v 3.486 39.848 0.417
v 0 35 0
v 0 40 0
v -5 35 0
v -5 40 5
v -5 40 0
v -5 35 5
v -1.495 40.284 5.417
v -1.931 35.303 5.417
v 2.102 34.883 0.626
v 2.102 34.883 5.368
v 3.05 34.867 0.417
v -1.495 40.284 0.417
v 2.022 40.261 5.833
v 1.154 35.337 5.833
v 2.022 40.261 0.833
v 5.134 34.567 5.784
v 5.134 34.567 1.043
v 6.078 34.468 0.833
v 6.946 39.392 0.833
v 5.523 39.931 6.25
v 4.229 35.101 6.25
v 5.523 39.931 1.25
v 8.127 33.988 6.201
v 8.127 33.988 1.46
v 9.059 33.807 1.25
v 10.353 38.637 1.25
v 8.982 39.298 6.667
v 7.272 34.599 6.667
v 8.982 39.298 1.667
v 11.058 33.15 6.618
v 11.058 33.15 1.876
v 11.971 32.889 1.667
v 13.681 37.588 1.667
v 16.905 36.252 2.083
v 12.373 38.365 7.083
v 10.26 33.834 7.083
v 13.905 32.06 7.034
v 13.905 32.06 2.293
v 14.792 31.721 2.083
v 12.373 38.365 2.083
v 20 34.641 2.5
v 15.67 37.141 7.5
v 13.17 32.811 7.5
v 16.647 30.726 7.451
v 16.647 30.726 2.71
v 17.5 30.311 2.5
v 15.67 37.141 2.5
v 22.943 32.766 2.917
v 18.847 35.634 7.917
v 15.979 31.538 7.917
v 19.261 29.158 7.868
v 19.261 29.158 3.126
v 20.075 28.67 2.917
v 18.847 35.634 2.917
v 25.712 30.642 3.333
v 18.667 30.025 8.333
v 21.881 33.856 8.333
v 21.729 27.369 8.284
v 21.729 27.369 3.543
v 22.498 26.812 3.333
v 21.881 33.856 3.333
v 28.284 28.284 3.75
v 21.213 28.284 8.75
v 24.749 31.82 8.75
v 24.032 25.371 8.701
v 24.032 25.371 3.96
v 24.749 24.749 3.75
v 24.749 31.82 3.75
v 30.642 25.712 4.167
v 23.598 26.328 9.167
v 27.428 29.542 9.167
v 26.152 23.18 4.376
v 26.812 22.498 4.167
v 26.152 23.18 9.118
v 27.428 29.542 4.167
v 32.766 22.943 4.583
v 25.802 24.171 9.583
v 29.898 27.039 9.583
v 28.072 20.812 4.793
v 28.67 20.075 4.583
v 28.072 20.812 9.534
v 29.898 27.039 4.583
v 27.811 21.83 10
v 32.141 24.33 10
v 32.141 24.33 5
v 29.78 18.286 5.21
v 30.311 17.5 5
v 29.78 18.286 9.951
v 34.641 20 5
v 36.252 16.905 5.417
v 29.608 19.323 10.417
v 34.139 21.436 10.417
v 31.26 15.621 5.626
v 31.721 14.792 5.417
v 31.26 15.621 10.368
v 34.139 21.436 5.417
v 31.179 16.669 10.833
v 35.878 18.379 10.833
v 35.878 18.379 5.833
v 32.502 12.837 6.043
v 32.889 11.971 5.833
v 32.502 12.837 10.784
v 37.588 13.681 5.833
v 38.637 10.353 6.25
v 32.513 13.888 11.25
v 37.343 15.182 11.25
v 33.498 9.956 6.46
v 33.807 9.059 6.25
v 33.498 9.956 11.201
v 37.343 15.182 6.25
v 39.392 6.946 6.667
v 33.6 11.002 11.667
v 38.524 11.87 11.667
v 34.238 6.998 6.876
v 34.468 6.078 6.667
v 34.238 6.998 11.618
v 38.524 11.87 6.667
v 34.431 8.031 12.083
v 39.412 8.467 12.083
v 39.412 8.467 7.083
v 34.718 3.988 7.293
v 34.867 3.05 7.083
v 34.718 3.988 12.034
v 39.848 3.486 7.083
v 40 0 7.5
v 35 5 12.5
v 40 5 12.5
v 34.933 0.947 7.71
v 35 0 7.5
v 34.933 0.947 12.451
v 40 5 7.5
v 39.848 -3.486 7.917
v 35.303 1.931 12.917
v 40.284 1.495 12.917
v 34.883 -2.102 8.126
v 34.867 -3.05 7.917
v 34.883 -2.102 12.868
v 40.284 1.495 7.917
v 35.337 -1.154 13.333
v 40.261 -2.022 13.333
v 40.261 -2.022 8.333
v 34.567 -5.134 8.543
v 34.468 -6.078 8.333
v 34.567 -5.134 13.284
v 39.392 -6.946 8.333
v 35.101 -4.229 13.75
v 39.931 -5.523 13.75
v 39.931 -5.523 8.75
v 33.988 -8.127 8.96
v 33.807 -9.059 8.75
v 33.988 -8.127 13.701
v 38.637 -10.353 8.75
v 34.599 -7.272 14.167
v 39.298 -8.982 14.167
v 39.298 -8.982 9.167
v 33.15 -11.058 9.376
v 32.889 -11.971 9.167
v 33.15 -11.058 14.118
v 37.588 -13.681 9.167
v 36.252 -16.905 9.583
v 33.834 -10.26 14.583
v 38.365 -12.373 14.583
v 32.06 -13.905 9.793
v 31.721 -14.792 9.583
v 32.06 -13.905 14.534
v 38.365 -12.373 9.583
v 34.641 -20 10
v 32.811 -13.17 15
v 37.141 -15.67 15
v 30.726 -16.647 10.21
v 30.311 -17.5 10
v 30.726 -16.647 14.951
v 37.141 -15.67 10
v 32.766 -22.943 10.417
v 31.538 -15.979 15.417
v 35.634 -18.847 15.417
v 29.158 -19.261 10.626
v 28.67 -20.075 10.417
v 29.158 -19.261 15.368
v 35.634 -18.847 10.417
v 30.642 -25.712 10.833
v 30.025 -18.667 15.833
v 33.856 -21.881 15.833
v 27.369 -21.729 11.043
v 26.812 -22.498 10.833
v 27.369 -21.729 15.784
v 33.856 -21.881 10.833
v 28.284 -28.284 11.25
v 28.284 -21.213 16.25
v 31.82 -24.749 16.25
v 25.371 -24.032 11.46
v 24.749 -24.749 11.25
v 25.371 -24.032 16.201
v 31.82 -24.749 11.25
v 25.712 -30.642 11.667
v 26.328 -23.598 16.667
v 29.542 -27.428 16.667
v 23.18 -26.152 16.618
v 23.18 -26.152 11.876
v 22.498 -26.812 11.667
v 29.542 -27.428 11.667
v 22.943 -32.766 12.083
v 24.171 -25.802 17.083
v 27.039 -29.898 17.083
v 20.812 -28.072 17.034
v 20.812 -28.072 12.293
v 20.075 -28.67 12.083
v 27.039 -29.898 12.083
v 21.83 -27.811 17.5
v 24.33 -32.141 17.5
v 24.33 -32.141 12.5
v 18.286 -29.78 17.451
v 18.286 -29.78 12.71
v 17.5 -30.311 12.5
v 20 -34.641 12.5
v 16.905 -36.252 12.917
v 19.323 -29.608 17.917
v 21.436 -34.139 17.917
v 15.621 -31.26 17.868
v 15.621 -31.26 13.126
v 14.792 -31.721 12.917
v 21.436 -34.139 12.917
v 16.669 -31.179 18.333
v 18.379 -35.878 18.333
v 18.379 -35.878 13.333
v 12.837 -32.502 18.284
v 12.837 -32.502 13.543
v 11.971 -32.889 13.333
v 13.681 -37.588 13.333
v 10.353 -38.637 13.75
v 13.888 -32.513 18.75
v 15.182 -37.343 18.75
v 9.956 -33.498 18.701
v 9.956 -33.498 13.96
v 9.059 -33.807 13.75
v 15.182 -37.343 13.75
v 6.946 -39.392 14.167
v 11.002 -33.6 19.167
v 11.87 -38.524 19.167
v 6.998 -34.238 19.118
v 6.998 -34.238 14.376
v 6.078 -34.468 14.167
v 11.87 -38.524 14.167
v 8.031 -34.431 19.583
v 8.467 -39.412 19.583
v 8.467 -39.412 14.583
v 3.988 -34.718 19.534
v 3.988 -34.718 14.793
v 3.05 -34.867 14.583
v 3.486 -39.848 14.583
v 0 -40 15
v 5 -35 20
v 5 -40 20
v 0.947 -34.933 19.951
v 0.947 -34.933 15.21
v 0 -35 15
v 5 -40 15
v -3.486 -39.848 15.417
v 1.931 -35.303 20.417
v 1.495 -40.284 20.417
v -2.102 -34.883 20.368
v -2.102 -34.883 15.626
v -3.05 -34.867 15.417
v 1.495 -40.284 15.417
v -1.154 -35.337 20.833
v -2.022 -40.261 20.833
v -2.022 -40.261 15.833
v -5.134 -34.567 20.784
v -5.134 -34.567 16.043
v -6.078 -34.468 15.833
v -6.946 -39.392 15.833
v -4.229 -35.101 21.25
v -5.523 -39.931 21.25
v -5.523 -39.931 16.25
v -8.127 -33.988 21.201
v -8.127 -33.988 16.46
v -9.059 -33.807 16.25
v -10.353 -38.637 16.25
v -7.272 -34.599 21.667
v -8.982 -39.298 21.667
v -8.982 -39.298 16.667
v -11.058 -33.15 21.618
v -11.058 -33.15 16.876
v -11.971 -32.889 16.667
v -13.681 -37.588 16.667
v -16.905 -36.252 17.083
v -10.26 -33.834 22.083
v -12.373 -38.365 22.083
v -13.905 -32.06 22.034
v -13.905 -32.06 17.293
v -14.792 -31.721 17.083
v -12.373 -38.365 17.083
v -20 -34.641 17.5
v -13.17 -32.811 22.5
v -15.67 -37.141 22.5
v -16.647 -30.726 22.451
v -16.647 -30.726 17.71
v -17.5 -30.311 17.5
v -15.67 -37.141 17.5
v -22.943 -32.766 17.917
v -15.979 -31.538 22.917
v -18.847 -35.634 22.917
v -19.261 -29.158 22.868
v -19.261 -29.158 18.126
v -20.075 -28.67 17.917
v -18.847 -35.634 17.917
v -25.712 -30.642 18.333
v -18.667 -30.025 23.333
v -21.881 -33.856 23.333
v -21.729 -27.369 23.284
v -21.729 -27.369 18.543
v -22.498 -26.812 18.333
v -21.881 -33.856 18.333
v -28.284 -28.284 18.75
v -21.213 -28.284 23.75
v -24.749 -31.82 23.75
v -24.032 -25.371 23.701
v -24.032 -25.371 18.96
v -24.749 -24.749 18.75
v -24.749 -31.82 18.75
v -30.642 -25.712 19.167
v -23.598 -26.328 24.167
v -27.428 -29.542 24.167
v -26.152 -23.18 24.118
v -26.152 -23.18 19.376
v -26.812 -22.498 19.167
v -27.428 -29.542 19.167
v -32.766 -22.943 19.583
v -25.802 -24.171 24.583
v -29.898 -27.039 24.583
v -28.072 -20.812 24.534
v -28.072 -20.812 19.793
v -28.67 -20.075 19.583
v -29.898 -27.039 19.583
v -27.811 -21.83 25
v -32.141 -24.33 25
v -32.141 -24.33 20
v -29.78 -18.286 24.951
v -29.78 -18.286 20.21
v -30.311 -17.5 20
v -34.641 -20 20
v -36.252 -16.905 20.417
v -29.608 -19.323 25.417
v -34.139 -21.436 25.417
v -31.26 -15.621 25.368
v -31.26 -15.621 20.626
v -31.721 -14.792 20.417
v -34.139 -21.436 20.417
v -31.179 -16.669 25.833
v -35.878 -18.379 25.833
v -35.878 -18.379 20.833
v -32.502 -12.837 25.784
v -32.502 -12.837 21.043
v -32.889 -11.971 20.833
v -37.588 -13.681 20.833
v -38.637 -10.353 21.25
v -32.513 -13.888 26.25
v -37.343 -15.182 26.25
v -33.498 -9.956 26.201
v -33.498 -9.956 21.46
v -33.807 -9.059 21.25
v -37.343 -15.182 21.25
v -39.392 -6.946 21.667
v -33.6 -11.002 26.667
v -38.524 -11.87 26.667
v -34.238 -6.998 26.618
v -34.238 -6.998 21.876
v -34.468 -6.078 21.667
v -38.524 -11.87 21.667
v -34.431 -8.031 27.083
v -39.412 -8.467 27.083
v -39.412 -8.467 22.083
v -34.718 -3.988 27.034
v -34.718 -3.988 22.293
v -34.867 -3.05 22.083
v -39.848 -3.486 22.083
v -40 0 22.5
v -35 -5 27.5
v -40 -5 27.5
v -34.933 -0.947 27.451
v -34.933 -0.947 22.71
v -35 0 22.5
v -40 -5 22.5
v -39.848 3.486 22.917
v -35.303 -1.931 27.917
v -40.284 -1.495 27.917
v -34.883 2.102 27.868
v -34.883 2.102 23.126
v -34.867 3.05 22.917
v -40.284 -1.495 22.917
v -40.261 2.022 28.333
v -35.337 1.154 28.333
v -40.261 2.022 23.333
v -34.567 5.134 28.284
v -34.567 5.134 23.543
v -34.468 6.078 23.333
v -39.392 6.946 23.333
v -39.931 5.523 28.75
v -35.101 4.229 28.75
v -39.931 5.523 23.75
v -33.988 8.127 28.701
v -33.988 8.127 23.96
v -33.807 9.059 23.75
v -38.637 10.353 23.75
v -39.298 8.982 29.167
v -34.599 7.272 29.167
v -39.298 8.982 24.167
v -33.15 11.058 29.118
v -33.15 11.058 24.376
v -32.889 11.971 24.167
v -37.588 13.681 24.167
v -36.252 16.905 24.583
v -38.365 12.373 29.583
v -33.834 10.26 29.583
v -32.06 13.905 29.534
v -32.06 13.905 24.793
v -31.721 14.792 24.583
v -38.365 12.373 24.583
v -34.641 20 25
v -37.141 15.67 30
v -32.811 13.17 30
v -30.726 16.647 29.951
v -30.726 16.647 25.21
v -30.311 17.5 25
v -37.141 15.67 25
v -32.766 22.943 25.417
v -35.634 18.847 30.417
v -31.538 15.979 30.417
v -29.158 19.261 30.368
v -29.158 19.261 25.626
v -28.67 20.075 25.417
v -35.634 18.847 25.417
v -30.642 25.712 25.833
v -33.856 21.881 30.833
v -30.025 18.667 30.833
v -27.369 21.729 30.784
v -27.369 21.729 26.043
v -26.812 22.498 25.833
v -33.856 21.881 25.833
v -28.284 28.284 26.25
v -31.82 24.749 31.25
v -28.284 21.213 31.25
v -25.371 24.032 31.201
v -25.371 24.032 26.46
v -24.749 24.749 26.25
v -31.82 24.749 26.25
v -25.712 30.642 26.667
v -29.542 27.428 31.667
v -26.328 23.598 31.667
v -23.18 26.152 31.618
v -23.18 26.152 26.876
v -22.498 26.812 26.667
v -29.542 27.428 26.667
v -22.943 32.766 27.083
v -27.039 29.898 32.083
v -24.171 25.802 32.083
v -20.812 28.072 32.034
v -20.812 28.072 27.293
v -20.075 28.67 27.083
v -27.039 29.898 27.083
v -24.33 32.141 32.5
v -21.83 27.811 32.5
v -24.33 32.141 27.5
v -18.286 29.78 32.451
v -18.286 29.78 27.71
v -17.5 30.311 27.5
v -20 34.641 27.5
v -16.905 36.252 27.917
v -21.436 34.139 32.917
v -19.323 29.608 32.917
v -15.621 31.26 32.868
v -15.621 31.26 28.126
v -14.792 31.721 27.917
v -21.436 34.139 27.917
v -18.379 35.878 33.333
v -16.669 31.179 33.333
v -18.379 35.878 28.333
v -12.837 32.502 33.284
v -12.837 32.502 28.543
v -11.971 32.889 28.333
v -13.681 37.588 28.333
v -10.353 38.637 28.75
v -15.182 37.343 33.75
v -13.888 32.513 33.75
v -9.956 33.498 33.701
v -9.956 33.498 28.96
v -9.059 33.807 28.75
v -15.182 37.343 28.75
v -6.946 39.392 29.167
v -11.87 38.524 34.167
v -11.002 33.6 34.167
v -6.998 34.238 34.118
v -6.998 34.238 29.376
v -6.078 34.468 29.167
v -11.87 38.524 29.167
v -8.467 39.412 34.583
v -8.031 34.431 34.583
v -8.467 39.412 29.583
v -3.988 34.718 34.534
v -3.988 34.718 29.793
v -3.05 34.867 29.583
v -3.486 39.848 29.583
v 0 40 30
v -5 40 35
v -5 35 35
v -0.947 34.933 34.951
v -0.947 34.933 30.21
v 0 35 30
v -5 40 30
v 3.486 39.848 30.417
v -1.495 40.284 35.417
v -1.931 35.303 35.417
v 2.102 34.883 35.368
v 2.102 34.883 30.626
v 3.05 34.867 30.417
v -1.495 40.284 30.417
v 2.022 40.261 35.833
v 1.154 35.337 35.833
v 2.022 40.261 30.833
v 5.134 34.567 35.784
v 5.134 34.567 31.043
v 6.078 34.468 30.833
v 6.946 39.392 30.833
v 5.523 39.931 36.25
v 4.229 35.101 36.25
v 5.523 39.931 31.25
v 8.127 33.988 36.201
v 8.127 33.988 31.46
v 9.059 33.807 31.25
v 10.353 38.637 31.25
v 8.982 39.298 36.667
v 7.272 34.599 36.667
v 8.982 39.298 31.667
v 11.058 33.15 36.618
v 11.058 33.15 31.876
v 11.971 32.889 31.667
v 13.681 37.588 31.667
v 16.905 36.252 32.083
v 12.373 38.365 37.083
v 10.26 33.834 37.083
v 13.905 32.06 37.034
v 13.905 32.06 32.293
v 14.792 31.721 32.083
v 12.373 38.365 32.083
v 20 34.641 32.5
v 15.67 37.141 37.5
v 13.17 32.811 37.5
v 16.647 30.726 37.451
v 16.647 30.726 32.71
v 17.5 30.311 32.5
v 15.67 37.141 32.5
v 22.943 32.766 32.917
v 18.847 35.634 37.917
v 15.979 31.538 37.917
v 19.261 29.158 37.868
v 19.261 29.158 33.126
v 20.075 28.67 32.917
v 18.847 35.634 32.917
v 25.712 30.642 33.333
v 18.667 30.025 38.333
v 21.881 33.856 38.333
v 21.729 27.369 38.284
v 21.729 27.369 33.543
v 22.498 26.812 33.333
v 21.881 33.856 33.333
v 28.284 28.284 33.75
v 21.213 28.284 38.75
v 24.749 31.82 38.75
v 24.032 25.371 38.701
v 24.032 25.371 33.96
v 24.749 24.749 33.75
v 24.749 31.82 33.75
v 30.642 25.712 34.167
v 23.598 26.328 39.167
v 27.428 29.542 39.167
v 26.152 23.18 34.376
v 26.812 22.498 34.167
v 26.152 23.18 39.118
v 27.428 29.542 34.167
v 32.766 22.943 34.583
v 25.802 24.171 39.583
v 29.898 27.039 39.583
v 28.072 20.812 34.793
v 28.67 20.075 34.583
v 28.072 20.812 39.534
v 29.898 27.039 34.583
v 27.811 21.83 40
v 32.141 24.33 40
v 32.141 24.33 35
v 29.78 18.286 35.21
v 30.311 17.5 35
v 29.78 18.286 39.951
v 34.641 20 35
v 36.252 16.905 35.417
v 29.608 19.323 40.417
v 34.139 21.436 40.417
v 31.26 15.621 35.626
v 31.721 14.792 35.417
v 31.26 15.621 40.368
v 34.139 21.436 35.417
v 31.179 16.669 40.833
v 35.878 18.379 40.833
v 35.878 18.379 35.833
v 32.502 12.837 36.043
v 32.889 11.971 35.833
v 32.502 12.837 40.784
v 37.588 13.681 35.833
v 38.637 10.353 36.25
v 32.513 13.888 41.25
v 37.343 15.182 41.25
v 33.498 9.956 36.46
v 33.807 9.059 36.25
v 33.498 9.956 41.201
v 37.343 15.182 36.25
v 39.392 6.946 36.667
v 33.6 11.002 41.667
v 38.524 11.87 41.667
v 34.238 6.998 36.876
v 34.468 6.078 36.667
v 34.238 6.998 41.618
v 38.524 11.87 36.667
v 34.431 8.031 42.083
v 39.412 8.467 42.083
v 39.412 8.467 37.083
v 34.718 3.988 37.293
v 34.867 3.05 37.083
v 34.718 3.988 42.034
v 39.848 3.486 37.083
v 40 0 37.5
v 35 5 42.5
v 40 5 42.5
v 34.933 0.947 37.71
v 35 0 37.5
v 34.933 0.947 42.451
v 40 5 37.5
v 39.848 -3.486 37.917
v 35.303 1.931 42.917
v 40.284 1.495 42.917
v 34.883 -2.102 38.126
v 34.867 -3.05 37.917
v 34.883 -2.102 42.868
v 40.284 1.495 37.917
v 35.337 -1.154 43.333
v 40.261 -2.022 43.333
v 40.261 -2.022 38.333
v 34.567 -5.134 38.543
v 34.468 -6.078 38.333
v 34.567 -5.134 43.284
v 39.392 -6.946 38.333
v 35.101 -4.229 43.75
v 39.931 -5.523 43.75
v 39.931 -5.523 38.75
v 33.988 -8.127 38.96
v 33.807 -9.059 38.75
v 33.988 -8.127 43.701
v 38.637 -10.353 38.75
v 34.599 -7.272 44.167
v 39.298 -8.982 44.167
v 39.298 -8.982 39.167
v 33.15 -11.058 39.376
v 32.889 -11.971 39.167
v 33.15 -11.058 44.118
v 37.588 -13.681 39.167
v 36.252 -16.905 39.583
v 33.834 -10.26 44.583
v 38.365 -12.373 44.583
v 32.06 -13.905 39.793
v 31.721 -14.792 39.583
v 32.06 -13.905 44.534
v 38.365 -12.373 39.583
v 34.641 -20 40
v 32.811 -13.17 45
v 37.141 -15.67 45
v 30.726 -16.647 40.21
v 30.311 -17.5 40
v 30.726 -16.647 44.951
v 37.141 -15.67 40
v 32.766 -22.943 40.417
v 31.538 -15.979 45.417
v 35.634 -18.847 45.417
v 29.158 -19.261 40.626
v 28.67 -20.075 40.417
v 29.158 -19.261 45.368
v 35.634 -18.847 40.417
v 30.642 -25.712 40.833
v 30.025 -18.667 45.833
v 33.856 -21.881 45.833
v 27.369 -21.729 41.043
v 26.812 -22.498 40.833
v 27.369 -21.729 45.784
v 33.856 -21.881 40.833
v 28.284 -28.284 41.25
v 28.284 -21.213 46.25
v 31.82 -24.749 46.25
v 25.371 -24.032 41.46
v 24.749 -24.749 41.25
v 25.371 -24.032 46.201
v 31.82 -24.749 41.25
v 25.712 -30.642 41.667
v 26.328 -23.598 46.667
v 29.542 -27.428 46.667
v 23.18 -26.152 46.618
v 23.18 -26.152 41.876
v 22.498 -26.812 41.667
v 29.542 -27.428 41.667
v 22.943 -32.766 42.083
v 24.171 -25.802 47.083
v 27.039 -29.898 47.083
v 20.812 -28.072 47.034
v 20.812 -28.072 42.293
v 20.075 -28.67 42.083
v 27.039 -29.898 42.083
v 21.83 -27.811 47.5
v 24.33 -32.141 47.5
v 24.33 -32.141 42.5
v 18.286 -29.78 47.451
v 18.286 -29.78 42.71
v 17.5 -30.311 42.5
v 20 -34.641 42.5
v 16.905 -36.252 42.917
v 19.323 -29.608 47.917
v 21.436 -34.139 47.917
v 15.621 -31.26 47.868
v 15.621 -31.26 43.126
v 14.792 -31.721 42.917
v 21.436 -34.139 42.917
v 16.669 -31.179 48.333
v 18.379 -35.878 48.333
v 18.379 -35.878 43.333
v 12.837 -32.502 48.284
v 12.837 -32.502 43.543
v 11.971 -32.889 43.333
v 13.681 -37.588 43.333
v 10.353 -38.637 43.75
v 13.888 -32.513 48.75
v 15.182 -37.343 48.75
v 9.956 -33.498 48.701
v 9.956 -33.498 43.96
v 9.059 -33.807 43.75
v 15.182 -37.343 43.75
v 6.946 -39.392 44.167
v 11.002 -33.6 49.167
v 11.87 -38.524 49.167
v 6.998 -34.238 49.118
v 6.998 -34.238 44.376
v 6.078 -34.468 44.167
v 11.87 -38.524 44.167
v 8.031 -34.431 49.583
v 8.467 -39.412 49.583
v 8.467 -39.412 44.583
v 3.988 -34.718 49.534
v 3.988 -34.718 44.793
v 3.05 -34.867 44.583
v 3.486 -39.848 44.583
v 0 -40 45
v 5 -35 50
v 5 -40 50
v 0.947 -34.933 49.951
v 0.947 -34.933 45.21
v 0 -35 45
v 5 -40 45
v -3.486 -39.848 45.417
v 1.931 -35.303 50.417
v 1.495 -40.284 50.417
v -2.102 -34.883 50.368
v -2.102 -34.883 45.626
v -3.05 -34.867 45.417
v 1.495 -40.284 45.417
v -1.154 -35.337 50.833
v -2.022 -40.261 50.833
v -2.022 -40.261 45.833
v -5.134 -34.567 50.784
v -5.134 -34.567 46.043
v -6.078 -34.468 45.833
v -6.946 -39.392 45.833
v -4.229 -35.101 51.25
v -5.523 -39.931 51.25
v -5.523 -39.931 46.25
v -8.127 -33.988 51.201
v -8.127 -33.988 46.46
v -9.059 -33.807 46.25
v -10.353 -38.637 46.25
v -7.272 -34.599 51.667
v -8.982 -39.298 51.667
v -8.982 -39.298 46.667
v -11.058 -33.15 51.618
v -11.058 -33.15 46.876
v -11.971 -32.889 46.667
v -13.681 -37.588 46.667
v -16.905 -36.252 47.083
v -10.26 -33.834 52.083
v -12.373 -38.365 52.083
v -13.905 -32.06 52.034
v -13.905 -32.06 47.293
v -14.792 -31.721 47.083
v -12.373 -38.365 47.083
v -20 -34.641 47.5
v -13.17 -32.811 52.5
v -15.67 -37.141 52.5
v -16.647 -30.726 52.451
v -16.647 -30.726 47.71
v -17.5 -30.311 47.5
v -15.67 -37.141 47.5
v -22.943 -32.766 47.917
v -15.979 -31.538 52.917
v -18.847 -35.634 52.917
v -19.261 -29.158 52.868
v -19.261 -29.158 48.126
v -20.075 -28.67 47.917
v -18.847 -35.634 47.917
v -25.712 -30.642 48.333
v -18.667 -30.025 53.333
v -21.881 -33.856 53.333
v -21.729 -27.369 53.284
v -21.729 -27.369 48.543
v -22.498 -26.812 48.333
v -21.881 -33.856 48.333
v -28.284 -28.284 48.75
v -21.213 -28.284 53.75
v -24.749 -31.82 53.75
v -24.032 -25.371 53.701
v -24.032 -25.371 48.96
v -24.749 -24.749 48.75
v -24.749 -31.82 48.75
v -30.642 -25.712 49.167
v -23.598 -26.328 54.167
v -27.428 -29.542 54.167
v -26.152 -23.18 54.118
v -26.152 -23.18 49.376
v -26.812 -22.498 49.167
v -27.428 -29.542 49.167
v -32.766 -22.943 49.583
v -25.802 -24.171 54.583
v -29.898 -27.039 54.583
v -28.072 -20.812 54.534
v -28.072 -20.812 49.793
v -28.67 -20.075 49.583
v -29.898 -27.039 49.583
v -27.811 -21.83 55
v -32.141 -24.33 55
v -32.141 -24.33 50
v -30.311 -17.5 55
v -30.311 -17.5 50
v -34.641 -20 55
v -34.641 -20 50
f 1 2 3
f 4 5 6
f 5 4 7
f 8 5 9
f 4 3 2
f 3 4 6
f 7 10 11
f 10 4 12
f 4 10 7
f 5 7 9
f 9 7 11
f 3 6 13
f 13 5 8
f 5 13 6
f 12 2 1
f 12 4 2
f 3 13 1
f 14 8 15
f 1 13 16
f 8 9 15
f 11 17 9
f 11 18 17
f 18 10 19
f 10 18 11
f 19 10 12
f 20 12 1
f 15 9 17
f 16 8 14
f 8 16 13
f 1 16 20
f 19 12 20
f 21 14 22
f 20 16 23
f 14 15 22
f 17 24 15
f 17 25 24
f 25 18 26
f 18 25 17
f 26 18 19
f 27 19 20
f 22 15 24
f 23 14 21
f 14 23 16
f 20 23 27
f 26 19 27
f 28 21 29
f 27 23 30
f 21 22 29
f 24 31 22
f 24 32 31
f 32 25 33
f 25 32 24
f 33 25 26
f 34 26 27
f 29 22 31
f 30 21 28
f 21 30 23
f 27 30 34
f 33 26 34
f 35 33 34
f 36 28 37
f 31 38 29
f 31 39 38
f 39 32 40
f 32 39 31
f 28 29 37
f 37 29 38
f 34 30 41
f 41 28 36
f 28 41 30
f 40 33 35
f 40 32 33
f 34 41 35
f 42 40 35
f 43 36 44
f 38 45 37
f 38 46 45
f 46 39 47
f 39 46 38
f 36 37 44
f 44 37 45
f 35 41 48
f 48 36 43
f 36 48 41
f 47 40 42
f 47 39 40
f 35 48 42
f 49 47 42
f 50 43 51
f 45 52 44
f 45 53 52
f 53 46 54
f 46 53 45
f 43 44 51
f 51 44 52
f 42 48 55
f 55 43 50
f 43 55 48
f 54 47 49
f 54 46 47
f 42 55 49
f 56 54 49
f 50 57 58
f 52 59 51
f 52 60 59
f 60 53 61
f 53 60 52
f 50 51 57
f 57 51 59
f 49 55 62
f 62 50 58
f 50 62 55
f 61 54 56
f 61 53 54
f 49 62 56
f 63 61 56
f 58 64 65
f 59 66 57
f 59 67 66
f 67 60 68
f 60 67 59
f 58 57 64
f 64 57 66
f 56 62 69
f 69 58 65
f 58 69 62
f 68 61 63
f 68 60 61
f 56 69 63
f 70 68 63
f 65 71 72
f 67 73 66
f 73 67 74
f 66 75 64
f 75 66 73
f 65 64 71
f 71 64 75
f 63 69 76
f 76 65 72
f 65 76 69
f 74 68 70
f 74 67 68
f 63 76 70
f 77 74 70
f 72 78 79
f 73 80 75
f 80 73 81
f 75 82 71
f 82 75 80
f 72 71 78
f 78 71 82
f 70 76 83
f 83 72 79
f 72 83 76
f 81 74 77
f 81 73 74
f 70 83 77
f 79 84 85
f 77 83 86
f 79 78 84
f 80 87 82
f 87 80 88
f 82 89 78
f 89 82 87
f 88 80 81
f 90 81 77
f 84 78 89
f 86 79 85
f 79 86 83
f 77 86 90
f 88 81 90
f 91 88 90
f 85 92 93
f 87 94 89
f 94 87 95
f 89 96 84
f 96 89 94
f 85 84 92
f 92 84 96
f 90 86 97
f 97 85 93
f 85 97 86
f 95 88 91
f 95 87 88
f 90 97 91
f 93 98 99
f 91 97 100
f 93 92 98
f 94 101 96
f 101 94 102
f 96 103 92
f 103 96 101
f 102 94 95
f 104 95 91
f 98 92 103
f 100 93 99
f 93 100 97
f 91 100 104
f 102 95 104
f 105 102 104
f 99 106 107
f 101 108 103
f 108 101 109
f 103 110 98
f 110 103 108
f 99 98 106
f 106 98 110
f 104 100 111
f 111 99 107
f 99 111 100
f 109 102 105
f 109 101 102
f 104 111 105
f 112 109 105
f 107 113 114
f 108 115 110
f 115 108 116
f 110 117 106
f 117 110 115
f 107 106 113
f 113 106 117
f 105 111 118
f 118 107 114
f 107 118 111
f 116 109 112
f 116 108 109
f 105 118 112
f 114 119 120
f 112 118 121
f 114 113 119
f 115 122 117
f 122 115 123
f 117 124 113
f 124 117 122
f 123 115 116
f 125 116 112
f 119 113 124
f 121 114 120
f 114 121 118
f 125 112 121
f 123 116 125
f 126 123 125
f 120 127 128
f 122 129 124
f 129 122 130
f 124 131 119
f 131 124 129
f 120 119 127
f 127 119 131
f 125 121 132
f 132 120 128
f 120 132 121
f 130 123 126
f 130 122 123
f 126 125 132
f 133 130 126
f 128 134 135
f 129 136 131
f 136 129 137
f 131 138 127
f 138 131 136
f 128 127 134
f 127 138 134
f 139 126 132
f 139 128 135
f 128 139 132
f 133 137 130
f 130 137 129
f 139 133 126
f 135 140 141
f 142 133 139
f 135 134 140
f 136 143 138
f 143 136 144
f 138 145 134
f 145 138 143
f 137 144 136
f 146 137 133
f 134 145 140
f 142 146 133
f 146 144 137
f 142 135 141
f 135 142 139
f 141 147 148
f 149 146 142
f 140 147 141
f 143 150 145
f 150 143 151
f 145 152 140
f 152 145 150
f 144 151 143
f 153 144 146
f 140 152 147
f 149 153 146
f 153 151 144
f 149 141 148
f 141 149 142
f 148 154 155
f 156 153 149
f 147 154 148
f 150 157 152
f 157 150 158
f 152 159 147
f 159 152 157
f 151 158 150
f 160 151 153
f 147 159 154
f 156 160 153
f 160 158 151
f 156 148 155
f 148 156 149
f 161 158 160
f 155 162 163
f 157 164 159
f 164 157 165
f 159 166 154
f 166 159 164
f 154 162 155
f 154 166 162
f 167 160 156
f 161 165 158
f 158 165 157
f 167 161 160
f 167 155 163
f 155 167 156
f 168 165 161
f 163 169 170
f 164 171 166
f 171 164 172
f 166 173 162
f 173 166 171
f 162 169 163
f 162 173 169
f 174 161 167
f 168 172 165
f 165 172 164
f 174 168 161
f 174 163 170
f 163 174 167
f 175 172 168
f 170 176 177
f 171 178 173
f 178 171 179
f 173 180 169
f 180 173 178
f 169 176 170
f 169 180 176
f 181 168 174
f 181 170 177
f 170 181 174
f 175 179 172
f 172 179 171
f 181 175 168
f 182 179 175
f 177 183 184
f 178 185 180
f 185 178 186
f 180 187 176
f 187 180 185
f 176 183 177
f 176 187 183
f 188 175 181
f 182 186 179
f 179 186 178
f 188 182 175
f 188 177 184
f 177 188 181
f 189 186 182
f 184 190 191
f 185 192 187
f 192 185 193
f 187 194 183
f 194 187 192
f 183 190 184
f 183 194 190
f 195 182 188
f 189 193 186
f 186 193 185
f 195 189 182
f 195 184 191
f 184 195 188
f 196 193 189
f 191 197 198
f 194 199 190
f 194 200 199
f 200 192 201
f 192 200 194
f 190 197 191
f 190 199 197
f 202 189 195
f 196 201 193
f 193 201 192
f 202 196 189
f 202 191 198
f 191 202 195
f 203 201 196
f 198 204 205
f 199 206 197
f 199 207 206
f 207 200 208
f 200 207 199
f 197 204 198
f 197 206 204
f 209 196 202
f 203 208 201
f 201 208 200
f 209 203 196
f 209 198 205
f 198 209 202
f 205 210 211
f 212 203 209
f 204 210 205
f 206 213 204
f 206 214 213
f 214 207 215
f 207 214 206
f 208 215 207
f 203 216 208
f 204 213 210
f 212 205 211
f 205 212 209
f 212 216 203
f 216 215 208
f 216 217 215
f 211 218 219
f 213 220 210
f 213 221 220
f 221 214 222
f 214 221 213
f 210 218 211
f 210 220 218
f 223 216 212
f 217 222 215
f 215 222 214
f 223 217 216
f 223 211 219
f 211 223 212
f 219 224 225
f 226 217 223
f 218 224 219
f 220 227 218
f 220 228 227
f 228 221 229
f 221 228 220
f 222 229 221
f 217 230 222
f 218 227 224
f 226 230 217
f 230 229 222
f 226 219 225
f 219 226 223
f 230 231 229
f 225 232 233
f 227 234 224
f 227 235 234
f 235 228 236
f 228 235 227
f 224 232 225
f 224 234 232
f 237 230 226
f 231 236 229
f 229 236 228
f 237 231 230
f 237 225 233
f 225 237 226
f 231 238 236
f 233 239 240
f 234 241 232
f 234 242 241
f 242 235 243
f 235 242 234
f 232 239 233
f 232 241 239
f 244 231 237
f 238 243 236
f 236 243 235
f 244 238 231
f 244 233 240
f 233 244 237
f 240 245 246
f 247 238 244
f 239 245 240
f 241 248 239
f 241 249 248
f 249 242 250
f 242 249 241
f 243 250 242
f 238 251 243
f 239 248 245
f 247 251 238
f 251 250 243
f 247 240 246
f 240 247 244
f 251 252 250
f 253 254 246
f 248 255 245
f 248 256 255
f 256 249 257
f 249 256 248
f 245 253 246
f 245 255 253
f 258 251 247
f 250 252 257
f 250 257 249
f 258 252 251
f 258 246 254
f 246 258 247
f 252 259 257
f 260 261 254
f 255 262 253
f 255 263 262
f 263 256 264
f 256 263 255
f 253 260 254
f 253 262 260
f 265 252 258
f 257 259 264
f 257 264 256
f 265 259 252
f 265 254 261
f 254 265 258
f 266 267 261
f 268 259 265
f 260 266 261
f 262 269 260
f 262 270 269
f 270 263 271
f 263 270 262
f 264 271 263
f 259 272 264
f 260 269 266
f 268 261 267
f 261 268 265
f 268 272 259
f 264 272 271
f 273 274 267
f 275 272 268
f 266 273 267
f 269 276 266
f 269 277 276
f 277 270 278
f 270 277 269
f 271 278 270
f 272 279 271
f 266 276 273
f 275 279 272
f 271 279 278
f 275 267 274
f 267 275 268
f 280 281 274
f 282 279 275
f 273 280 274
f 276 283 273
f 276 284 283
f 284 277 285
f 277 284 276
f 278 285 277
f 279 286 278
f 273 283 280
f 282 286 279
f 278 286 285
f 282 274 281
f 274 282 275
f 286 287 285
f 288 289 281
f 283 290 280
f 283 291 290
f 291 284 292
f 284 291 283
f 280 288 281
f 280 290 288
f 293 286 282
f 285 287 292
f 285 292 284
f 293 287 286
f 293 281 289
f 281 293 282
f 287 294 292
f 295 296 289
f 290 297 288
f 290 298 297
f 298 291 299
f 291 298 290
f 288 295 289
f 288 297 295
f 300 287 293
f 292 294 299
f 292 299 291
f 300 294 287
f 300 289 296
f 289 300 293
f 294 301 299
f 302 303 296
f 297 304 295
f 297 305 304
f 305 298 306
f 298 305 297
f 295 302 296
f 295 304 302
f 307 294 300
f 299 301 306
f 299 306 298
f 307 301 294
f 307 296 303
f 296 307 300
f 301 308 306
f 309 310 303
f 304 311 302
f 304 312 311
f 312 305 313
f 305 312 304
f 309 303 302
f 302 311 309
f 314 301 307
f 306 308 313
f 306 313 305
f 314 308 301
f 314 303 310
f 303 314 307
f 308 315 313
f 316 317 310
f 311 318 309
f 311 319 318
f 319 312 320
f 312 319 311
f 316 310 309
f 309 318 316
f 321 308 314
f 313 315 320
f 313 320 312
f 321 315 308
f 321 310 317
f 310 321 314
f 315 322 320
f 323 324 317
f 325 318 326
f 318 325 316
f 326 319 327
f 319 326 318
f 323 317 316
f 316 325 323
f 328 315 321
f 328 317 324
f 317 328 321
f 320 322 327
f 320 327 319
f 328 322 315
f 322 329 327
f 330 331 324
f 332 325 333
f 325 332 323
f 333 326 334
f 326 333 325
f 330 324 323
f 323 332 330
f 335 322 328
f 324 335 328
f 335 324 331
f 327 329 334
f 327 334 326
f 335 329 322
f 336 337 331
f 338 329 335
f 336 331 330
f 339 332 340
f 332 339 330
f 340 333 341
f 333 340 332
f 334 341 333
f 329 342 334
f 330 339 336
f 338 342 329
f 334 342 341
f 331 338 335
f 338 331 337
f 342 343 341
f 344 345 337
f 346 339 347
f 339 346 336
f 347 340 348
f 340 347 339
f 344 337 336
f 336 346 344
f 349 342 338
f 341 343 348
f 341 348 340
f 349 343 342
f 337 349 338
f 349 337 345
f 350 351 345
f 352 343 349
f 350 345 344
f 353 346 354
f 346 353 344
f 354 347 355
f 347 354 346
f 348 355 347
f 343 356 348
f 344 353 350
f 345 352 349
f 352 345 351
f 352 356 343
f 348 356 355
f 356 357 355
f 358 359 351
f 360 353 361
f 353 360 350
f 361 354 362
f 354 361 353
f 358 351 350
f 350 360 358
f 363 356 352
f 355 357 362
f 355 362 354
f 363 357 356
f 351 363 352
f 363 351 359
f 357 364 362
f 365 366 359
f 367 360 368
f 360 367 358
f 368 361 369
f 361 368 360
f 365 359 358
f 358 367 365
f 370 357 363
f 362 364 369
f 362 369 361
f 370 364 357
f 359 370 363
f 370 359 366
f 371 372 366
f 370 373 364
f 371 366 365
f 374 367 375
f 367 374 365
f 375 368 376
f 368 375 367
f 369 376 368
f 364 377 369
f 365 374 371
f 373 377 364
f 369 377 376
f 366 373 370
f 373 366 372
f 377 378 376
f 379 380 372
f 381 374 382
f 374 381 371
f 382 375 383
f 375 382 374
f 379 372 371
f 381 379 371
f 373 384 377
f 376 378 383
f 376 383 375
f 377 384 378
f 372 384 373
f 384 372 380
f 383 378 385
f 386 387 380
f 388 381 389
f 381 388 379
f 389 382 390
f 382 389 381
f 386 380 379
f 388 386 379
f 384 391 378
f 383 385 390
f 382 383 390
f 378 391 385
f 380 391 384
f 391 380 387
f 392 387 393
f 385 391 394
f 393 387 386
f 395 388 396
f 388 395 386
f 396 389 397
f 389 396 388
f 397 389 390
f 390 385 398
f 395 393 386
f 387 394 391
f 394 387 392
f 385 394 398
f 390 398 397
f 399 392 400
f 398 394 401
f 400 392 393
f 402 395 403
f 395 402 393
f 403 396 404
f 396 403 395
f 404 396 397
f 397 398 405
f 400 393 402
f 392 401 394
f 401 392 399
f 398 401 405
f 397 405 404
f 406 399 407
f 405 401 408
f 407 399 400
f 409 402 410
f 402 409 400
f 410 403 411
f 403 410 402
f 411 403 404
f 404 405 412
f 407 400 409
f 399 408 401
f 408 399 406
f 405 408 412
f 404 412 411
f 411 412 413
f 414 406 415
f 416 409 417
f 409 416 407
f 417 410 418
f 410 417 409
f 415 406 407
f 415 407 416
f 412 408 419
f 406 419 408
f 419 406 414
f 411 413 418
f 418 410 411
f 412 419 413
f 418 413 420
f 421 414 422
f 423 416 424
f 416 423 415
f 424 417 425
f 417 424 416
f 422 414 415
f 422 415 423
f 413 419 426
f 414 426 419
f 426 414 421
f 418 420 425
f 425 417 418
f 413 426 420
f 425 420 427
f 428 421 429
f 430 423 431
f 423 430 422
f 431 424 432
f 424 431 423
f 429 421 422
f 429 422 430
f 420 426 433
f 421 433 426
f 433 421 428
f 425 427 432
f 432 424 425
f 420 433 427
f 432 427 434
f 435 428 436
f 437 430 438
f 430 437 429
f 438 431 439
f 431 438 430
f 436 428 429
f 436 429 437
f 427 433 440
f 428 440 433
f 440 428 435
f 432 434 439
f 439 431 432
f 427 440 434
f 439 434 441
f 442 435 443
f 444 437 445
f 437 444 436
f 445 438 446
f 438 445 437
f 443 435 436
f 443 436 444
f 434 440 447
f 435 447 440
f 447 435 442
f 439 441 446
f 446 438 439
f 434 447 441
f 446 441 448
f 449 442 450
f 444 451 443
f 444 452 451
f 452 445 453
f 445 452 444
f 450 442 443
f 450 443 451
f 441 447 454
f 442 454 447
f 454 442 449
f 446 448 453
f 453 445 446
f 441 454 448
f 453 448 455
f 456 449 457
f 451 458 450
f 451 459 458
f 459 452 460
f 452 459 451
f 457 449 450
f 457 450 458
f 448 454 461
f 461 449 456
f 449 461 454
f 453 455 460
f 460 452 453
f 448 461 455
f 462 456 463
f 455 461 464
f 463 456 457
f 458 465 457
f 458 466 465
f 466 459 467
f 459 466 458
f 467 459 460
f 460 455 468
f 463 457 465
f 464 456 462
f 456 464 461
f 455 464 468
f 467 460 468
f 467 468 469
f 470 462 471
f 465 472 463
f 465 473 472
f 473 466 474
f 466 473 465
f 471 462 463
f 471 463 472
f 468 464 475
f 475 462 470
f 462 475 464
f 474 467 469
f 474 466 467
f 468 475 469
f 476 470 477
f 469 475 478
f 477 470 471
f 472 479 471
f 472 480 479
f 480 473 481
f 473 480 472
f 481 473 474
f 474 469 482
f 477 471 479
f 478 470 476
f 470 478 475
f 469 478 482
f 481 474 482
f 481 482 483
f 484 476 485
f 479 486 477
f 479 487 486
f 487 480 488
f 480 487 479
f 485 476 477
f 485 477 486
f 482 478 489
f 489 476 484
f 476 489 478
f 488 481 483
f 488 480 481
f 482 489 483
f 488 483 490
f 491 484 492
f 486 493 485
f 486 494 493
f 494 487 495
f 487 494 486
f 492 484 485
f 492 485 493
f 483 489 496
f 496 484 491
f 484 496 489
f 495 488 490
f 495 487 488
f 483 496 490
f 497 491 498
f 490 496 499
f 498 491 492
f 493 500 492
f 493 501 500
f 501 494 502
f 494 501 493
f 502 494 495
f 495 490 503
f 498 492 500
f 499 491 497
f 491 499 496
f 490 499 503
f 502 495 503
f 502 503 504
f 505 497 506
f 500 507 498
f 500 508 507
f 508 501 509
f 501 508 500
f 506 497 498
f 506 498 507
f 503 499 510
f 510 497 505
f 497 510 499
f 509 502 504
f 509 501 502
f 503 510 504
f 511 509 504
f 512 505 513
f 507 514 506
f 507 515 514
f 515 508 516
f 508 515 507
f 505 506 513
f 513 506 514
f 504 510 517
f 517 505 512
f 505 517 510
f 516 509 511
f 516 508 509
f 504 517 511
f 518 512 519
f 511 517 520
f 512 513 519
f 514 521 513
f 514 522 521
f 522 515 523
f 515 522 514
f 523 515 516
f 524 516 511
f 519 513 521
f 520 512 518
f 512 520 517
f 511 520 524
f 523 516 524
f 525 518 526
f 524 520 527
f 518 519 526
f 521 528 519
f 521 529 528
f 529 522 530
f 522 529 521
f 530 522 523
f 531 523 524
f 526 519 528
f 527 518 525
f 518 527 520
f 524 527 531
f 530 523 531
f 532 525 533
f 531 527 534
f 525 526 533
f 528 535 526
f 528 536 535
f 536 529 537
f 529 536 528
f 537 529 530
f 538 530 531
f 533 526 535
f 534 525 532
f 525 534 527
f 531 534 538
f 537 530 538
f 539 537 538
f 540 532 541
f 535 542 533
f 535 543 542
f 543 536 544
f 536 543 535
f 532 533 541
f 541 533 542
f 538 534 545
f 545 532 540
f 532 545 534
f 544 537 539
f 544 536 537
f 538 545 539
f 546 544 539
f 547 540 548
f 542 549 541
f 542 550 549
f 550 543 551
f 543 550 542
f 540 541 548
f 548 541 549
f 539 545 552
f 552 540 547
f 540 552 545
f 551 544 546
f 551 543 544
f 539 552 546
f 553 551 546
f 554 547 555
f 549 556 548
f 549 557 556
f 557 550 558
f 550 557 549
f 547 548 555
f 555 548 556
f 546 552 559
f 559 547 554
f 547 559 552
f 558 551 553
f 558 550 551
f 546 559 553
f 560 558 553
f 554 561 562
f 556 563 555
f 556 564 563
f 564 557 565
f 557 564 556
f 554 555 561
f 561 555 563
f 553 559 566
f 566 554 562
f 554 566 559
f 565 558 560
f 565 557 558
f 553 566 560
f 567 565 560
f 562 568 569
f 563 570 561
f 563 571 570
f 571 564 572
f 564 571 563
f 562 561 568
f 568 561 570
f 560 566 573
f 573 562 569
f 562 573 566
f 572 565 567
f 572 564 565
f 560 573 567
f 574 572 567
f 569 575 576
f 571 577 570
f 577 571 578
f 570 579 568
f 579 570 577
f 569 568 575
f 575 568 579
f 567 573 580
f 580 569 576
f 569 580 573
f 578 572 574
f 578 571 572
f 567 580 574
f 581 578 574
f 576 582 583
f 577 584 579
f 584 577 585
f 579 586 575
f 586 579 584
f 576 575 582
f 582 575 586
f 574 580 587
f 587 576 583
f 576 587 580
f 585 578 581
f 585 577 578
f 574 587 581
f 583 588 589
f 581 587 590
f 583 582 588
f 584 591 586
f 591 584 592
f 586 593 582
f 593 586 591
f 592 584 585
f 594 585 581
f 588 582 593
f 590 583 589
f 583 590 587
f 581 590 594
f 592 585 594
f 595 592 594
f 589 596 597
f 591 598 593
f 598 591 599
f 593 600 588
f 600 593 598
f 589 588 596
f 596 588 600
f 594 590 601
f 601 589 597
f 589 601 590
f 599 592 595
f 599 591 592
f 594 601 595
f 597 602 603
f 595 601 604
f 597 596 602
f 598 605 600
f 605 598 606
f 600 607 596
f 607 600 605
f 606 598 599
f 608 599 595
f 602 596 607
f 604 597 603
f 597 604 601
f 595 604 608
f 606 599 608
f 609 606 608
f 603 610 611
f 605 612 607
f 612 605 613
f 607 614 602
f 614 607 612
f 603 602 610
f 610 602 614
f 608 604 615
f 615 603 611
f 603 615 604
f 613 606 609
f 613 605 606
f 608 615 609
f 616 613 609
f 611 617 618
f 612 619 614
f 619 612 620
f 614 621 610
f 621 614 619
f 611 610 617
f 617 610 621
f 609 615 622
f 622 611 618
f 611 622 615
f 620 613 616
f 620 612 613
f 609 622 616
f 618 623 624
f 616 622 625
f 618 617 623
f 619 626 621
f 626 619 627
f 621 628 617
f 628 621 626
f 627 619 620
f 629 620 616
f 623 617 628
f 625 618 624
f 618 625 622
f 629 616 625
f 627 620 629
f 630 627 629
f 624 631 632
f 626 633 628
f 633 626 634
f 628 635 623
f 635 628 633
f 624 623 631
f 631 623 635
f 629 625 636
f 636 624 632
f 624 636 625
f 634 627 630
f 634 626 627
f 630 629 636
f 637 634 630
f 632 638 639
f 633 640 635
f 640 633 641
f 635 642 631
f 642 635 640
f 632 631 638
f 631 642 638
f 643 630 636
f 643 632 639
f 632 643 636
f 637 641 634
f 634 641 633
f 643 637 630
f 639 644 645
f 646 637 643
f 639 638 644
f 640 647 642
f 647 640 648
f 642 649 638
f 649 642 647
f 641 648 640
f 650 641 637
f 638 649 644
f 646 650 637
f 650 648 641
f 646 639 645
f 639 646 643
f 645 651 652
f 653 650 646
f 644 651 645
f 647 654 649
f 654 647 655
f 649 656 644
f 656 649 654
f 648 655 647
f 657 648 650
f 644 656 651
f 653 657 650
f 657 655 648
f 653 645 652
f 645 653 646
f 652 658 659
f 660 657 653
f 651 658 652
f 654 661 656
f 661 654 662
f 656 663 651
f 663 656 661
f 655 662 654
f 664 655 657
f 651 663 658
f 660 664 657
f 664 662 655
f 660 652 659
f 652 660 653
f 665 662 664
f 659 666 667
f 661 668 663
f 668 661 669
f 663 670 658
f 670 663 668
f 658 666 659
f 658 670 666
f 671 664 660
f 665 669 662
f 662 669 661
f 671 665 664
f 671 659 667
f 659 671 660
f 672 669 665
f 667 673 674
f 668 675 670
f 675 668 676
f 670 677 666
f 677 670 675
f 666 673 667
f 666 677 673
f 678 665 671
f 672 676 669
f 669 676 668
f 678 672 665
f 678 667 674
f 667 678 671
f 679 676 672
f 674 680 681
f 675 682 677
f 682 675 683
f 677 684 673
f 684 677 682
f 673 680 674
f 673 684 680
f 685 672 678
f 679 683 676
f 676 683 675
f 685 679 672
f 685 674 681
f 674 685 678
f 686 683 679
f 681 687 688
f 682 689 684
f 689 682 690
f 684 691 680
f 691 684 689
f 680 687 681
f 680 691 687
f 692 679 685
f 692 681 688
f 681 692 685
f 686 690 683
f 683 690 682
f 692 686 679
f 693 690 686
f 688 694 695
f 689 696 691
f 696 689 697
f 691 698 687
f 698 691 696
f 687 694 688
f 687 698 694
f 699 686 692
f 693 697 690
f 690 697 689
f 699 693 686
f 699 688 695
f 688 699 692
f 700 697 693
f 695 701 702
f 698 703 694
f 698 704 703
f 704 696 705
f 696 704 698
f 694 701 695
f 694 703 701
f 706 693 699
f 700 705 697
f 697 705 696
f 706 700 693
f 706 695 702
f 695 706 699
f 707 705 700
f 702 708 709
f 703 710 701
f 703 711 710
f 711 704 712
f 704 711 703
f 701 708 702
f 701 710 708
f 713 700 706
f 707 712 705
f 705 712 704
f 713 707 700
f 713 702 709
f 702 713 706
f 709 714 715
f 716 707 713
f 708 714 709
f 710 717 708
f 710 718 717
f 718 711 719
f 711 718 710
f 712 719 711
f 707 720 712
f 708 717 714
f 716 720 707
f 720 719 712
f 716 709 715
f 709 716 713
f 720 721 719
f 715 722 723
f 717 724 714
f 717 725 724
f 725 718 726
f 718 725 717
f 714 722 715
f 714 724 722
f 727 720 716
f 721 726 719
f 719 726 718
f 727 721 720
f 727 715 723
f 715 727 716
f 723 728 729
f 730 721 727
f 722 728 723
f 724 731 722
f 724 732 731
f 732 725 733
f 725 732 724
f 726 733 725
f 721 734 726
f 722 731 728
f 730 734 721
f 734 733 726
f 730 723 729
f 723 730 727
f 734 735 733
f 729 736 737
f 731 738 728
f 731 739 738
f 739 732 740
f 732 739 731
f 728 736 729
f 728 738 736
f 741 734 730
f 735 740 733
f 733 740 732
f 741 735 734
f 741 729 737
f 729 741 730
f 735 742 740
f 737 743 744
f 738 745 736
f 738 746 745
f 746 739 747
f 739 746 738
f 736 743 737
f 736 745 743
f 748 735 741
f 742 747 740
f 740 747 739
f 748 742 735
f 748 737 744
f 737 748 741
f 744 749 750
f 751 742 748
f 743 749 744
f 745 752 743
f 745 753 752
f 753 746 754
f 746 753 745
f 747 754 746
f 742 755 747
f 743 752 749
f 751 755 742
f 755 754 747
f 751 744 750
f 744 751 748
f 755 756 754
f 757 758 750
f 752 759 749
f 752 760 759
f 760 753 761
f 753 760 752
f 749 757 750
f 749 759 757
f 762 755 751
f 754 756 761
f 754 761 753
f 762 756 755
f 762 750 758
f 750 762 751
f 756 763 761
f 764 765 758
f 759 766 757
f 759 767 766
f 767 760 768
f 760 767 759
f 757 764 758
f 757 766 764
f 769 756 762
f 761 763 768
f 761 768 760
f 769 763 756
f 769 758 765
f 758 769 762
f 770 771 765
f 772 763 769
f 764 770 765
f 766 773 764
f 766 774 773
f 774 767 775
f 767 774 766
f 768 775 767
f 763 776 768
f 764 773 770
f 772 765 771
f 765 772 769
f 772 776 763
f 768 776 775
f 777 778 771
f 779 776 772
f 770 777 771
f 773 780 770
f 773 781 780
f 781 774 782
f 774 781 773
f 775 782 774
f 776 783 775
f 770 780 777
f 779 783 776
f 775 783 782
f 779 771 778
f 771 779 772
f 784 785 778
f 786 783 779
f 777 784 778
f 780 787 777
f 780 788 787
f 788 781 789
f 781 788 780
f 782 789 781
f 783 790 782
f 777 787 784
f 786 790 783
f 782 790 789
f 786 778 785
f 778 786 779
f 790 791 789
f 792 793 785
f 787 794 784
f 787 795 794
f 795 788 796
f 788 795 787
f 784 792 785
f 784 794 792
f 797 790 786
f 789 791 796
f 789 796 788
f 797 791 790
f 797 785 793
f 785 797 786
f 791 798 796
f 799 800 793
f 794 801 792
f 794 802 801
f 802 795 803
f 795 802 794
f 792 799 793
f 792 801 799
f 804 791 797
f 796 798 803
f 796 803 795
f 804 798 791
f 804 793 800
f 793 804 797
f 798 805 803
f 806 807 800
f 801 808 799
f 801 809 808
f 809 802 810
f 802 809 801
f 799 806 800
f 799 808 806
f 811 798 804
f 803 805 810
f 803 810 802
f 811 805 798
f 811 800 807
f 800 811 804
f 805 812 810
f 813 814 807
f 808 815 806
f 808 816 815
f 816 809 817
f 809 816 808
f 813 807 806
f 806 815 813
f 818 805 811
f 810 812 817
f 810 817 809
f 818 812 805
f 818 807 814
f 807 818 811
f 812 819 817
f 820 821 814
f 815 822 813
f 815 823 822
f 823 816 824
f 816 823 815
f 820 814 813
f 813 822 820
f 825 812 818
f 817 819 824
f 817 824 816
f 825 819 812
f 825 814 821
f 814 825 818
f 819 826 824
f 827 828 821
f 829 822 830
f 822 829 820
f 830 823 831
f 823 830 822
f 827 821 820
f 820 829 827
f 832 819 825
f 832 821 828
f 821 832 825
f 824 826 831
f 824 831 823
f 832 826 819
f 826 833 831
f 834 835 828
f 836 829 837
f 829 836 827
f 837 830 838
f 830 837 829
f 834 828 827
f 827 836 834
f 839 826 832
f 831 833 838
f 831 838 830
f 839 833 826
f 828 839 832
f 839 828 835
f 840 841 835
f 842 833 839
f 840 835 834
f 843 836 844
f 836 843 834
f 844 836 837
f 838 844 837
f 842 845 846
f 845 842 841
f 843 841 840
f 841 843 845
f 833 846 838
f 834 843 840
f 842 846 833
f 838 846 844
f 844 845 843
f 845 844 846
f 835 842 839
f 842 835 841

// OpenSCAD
module tracePath(path, size){

for(i=[0:len(path)-1]){

    if(i+1 < len(path)){

        hull(){

            translate(path[i])

            rotate([0,0,atan2(path[i][1],path[i][0])])cube(size);

            translate(path[i+1])

            rotate([0,0,atan2(path[i+1][1],path[i+1][0])])cube(size);

        }

    }

}

}


function spiral(twist,height,spiral_radius) = [ for(i=[0:5:twist]) [spiral_radius*sin(i),spiral_radius*cos(i),i/twist*height]];

path = spiral(600,50,35);

tracePath(path, 5);
